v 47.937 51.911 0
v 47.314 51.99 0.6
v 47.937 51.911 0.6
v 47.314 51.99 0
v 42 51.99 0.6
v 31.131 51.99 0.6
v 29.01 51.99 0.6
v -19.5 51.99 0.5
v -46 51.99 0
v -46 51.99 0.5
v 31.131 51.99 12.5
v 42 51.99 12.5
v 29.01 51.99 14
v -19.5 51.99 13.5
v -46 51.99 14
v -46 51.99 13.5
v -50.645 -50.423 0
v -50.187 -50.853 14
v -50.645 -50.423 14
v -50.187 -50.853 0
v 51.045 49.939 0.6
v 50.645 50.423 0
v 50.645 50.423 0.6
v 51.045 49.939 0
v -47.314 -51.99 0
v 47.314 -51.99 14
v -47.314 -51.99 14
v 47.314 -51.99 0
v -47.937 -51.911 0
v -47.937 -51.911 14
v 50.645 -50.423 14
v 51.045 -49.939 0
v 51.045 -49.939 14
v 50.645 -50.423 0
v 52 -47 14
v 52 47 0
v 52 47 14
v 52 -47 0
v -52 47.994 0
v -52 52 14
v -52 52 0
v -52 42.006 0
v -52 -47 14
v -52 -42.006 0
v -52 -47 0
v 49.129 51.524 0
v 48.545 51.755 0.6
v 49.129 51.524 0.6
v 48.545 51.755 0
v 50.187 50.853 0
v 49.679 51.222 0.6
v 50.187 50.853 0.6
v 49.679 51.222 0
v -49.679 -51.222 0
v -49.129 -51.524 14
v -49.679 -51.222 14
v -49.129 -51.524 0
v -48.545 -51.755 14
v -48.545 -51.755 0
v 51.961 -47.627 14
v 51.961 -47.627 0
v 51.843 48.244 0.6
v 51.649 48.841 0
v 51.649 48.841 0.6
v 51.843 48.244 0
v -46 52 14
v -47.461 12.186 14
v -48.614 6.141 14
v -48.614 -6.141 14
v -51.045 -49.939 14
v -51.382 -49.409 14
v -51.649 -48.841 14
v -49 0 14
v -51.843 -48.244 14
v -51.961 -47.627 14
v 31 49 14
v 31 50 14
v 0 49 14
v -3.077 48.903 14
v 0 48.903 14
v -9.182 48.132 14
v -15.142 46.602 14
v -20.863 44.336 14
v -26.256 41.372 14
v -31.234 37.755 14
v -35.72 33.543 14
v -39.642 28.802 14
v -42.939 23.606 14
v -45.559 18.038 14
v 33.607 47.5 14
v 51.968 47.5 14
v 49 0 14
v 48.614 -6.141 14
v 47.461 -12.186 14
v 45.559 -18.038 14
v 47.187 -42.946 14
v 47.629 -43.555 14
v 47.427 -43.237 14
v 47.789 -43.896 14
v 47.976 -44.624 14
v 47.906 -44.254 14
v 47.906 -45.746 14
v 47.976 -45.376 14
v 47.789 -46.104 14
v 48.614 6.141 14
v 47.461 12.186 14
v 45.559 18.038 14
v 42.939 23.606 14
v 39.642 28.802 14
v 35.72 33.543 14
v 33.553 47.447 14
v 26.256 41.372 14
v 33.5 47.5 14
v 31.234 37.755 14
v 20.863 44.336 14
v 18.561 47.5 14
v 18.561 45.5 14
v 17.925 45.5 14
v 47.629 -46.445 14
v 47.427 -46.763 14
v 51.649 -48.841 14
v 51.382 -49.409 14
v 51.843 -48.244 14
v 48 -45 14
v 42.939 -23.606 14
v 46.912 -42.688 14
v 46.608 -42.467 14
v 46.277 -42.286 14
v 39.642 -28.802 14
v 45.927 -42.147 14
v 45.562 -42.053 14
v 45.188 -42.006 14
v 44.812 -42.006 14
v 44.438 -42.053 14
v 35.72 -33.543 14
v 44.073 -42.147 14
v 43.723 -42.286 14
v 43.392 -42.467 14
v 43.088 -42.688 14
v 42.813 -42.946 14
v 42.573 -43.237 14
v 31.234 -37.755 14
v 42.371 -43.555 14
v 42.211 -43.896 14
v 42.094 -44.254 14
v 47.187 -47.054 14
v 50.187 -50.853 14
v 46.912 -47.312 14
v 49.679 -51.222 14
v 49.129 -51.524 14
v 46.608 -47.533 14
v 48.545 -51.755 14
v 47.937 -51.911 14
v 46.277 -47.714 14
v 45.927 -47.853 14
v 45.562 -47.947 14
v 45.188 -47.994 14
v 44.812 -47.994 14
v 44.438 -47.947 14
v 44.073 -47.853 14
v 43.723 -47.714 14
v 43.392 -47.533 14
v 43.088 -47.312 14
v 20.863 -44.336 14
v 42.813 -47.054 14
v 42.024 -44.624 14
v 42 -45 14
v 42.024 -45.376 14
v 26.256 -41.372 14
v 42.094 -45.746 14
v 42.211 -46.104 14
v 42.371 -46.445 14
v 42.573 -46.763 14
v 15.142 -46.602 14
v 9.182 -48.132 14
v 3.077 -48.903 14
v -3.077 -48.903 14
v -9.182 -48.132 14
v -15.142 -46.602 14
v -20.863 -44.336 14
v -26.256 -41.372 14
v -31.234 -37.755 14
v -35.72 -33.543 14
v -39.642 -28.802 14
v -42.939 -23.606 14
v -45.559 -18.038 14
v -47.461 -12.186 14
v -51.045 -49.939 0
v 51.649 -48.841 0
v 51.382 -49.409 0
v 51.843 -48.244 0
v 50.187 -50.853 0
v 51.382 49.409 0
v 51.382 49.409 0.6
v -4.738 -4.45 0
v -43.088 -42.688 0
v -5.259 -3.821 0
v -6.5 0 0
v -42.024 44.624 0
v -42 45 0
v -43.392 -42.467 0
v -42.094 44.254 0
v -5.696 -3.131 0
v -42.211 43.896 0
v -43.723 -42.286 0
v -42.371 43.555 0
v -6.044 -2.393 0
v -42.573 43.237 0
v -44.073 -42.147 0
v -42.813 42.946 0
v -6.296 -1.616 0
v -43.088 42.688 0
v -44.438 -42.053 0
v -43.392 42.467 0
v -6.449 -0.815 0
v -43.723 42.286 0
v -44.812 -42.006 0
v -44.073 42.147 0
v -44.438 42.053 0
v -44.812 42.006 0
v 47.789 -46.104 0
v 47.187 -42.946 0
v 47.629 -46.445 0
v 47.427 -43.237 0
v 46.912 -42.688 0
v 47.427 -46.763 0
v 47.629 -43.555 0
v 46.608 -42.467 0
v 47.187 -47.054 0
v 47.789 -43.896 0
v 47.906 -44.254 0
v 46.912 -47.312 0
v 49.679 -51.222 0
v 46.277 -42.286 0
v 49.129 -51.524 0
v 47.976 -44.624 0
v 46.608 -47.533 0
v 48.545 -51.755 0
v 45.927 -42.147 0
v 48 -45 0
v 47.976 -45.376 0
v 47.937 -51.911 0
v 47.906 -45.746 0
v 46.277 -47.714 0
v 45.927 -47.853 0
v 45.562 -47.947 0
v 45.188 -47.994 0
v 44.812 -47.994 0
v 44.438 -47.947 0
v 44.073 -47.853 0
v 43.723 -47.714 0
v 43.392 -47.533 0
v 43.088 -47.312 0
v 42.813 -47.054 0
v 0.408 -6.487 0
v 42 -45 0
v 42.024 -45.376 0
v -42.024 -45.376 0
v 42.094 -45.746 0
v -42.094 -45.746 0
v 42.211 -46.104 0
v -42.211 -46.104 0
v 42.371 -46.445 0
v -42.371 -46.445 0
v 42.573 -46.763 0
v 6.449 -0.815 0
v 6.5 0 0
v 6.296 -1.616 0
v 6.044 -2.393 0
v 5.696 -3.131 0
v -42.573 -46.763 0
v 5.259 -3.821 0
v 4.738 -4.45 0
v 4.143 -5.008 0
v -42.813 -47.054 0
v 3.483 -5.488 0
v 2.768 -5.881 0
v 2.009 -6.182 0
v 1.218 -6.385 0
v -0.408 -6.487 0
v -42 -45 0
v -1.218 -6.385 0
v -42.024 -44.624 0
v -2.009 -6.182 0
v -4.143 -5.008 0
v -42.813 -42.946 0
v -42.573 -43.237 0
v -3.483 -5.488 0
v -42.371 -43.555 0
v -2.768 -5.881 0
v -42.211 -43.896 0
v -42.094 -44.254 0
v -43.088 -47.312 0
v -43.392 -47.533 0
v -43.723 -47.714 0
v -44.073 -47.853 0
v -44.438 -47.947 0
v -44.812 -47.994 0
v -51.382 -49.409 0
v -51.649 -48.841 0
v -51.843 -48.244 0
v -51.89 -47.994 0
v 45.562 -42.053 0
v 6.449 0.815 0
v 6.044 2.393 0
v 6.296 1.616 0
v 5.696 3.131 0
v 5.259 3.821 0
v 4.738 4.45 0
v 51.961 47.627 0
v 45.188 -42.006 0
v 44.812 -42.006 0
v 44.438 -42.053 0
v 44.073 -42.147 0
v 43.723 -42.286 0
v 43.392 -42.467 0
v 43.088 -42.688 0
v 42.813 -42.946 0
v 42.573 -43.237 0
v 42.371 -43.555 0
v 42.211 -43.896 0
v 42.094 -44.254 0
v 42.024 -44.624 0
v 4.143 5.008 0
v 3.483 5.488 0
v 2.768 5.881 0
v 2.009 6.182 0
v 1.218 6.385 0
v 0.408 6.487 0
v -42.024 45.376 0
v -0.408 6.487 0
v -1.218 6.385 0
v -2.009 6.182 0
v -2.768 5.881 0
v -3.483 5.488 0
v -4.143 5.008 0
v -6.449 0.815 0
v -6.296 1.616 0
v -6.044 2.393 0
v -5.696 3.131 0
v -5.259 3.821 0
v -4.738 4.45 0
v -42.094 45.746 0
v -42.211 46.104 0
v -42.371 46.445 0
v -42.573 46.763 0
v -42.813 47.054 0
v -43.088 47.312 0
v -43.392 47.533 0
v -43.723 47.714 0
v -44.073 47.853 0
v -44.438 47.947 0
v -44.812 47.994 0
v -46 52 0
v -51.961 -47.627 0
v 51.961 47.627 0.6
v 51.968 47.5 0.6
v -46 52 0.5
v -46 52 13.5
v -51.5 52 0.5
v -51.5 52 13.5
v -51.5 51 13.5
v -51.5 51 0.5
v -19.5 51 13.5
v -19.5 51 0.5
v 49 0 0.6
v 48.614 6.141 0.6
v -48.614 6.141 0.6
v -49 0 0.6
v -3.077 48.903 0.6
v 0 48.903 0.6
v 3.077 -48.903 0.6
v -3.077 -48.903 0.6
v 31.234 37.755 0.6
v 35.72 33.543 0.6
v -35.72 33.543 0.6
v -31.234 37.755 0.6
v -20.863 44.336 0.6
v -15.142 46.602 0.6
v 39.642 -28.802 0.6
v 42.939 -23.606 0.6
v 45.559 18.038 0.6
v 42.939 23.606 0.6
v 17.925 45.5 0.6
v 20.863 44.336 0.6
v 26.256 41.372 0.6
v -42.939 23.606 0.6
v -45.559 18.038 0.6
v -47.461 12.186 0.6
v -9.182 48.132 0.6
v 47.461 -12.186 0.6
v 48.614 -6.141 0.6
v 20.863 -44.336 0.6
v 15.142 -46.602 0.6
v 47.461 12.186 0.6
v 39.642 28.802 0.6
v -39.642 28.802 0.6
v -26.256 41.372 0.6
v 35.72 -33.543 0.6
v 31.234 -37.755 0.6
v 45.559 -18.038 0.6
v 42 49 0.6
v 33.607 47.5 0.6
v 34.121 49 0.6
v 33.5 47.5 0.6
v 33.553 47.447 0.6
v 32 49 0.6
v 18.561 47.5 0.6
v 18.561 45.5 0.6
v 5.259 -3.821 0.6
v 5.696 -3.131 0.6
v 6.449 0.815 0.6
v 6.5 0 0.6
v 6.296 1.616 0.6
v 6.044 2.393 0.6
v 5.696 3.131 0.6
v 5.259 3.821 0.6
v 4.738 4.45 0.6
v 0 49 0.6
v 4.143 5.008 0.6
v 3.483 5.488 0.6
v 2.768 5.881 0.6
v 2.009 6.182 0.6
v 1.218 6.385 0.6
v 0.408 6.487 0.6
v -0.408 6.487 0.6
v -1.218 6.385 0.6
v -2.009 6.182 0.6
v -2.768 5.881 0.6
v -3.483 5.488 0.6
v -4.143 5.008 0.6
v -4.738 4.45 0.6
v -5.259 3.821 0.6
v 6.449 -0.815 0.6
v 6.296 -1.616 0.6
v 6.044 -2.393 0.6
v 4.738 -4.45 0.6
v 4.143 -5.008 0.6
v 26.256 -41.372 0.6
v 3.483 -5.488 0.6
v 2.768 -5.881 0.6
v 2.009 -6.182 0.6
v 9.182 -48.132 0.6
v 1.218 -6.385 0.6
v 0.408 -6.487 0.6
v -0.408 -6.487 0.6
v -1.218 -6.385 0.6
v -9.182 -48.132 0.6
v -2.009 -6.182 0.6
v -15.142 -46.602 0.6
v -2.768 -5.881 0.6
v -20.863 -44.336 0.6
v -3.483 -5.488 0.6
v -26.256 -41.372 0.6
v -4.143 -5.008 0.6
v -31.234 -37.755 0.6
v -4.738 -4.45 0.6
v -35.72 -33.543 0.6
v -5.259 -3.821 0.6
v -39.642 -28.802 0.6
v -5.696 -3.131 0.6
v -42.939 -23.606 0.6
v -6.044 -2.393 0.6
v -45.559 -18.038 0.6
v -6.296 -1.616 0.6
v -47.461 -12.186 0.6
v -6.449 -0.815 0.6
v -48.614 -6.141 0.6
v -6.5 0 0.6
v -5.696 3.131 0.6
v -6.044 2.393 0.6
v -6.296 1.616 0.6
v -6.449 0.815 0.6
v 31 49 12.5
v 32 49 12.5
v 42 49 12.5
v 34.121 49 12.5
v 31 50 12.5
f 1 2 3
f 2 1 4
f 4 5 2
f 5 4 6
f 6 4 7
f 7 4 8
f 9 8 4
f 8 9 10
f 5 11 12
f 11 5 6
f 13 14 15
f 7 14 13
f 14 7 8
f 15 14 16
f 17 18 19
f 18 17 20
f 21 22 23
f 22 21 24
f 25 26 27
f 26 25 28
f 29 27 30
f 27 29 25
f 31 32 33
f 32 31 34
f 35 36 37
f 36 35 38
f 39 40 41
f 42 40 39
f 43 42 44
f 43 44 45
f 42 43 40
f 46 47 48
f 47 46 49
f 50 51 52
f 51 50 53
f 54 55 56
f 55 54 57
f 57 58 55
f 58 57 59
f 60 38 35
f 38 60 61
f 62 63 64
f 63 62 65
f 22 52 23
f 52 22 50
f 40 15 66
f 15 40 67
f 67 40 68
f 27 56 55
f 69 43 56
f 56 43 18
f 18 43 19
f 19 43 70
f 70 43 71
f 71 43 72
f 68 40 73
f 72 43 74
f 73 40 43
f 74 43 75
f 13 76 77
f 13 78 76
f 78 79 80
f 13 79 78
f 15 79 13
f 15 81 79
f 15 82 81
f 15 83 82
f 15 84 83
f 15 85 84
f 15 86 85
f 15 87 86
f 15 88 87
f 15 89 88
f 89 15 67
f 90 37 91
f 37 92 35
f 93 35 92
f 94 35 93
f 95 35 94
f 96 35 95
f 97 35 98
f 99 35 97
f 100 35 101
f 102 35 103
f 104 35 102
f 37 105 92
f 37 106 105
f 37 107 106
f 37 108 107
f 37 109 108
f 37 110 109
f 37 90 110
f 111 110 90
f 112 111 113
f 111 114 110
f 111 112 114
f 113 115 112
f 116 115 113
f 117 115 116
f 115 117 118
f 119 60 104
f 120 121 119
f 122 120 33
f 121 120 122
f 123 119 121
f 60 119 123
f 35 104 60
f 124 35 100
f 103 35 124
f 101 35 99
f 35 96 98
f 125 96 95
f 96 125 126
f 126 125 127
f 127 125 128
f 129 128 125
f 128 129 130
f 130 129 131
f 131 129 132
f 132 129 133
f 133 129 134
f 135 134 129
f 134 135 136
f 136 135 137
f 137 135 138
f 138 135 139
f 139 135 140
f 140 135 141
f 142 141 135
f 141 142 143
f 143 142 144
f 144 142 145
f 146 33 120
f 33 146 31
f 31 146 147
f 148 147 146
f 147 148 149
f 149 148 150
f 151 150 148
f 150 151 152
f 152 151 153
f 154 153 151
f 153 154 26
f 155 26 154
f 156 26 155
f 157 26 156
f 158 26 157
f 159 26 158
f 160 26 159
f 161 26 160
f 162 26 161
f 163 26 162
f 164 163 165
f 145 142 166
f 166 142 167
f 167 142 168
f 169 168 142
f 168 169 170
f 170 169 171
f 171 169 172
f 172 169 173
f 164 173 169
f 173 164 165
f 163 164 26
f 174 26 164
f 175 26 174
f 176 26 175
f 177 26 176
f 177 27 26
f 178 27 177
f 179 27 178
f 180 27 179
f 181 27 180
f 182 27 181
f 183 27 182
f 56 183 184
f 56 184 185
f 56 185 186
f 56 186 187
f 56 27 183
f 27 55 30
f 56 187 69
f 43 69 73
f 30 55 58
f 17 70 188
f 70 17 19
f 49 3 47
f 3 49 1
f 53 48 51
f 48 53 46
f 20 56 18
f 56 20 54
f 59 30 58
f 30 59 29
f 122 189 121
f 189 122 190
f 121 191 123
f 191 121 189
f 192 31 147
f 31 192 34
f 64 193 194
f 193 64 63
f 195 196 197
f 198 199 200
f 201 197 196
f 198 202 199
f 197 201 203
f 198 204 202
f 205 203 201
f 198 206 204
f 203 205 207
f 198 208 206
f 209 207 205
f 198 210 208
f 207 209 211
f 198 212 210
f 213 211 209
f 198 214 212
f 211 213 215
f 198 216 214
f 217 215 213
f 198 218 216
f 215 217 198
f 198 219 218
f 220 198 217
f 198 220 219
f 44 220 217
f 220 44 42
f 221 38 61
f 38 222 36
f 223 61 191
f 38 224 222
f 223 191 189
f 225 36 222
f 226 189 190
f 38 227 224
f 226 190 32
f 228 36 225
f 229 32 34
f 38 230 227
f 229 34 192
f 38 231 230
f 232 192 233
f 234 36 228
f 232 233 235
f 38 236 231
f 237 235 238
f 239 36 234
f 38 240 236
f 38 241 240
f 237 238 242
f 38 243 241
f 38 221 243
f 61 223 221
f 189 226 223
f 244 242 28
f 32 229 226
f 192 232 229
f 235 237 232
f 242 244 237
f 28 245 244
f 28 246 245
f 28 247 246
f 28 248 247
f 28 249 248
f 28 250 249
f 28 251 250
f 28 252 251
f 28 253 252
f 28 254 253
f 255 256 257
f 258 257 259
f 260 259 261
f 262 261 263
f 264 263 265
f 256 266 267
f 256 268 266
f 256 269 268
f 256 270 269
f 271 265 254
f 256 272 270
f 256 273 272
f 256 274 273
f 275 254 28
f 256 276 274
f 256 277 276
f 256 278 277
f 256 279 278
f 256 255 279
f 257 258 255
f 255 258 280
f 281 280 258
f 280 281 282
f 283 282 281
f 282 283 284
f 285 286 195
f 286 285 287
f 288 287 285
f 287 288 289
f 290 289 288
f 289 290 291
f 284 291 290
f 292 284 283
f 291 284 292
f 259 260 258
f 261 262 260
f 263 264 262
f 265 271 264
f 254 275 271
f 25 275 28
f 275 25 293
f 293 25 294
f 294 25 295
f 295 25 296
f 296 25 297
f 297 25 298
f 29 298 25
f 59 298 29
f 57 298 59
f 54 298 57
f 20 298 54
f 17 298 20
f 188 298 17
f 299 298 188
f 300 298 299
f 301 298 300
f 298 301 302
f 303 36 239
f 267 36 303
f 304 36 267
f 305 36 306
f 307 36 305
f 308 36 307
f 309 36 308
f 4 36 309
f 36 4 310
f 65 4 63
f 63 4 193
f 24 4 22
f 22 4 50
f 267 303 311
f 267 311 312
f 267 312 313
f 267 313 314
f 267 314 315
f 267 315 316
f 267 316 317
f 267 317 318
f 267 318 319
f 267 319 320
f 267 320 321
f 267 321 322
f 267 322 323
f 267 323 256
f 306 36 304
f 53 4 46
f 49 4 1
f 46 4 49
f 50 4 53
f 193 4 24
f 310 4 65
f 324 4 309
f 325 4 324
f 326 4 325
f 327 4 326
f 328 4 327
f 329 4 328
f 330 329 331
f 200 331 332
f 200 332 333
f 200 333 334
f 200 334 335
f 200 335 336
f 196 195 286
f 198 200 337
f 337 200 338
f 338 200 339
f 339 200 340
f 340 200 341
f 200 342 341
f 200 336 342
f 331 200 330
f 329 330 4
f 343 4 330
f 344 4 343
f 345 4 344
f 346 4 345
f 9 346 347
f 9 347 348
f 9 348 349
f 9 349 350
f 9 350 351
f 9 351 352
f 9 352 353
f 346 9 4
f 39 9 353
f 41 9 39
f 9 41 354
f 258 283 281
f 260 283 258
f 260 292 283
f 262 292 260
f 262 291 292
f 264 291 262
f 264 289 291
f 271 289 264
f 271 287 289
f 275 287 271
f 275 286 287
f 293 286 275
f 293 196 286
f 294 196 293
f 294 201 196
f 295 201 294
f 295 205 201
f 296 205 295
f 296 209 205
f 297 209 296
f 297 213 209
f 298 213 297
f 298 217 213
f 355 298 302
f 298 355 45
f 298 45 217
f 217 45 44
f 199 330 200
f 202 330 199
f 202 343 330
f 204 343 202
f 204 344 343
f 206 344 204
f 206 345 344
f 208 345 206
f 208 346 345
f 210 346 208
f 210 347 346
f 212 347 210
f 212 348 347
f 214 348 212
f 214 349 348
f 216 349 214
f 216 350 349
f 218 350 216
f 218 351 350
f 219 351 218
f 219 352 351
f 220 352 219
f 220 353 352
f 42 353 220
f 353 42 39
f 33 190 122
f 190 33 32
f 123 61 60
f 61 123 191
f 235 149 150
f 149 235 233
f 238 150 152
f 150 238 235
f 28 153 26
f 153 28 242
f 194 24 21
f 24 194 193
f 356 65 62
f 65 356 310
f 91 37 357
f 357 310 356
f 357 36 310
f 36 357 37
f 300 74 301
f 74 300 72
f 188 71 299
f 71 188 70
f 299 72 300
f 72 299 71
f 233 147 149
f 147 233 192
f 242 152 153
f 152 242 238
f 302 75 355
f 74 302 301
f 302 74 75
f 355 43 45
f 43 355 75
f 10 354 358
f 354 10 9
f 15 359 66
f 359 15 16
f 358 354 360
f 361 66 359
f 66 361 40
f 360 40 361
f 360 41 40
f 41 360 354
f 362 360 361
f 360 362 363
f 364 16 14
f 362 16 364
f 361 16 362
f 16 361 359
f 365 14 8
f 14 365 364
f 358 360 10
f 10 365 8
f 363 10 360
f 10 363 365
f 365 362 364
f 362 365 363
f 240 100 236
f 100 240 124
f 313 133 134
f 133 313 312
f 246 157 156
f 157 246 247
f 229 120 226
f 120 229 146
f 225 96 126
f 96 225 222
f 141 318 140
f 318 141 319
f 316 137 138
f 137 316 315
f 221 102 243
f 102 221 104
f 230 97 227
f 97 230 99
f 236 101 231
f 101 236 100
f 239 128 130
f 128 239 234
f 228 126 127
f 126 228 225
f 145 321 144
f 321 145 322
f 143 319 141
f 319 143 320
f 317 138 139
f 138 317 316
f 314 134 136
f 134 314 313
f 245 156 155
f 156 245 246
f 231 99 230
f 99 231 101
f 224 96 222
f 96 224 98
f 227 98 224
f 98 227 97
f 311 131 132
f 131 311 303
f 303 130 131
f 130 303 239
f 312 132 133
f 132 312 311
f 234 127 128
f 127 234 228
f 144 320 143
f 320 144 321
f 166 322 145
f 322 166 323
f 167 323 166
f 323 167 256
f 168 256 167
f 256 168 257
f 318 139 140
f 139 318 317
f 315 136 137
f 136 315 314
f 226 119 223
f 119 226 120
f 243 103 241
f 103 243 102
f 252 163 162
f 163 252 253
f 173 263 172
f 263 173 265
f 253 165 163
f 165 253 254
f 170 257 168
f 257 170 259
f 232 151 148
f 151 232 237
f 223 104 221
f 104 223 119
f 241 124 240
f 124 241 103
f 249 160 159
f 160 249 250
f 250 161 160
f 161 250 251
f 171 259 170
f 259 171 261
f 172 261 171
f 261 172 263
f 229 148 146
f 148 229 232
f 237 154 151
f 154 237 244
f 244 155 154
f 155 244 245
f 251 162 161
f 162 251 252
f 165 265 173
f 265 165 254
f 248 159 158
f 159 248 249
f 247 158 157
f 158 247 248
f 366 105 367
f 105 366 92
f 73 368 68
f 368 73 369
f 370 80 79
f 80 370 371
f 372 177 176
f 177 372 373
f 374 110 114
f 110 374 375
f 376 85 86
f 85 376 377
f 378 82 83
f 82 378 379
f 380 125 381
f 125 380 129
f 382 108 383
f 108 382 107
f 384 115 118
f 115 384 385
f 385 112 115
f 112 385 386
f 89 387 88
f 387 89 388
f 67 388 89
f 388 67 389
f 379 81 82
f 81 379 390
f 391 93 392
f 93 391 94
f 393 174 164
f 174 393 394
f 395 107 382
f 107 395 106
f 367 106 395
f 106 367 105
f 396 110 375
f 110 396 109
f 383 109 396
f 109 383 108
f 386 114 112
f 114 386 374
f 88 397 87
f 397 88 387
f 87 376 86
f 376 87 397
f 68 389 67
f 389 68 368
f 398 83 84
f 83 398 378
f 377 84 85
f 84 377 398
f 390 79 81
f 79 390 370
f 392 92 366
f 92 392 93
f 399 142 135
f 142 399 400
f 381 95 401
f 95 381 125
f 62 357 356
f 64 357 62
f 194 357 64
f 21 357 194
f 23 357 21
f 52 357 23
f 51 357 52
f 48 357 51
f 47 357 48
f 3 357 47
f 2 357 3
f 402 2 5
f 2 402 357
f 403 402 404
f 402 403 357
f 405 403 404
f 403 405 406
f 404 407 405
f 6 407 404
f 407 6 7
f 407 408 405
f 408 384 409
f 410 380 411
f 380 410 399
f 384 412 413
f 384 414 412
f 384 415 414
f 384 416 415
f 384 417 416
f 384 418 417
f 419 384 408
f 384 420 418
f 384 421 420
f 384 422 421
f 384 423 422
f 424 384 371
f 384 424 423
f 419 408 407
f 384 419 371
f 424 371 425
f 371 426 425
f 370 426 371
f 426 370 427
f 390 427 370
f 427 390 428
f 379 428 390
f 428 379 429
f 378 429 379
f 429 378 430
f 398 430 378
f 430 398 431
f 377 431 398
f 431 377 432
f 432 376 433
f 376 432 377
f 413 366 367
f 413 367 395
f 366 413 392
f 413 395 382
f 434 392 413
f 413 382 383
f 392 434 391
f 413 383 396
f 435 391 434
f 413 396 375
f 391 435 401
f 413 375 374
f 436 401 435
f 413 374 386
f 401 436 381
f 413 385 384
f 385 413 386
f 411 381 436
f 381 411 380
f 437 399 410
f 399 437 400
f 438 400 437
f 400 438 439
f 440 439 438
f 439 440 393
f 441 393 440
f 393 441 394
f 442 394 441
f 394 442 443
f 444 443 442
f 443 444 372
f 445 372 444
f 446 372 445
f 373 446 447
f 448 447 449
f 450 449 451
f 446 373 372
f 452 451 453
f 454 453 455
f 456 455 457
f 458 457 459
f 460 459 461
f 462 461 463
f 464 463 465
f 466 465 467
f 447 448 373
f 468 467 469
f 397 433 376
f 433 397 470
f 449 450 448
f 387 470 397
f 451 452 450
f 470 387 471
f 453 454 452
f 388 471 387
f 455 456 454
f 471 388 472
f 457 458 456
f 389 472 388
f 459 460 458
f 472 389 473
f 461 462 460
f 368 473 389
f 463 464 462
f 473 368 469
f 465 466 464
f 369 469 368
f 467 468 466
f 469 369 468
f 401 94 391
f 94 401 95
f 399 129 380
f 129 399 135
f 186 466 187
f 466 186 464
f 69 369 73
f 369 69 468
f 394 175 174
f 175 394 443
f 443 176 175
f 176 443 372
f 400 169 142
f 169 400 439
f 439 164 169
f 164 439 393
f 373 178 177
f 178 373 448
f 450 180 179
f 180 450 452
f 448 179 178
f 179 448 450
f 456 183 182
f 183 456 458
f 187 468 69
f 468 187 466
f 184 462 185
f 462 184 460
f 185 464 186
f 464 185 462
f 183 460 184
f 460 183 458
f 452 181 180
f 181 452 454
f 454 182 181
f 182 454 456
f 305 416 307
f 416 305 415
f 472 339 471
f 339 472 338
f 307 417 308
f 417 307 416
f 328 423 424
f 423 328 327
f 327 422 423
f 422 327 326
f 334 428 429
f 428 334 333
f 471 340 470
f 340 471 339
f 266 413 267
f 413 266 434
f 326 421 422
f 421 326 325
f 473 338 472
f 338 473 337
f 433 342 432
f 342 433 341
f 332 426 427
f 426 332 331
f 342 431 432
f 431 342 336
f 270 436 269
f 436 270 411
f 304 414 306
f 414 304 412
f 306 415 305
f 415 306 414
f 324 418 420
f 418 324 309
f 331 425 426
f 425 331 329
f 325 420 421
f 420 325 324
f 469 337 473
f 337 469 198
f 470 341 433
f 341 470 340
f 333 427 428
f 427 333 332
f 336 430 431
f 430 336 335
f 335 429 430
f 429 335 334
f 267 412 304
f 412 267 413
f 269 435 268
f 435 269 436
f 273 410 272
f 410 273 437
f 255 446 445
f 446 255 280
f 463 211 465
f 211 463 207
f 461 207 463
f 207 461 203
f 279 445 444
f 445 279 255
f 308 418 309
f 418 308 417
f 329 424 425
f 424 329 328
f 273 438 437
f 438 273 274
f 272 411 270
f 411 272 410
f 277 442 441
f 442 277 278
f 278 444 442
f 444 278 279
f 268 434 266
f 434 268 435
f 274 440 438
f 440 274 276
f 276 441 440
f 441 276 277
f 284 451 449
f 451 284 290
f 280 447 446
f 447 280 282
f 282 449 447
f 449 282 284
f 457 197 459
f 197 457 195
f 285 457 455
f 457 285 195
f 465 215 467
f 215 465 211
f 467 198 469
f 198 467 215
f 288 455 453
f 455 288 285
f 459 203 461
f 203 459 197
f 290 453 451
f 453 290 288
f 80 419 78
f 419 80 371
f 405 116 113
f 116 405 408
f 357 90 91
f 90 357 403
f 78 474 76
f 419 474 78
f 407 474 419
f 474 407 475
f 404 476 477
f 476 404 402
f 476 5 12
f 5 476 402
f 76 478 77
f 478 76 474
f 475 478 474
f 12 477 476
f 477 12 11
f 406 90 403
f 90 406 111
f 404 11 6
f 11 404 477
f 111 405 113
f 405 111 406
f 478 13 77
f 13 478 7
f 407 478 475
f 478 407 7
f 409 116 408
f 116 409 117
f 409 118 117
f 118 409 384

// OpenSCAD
$fn = 50;


difference() {
	union() {
		hull() {
			translate(v = [-47.0000000000, 47.0000000000, 0]) {
				cylinder(h = 14, r = 5);
			}
			translate(v = [47.0000000000, 47.0000000000, 0]) {
				cylinder(h = 14, r = 5);
			}
			translate(v = [-47.0000000000, -47.0000000000, 0]) {
				cylinder(h = 14, r = 5);
			}
			translate(v = [47.0000000000, -47.0000000000, 0]) {
				cylinder(h = 14, r = 5);
			}
		}
		translate(v = [-52.0000000000, 46.0000000000, 0]) {
			cube(size = [6, 6, 14]);
		}
	}
	union() {
		translate(v = [-52.5000000000, -45.0000000000, -250.0000000000]) {
			rotate(a = [0, 0, 0]) {
				difference() {
					union() {
						hull() {
							translate(v = [7.5000000000, 0, 0]) {
								cylinder(h = 250, r = 3.0000000000, r1 = 3.0000000000, r2 = 3.0000000000);
							}
							translate(v = [-7.5000000000, 0, 0]) {
								cylinder(h = 250, r = 3.0000000000, r1 = 3.0000000000, r2 = 3.0000000000);
							}
						}
					}
					union();
				}
			}
		}
		translate(v = [-52.5000000000, 45.0000000000, -250.0000000000]) {
			rotate(a = [0, 0, 0]) {
				difference() {
					union() {
						hull() {
							translate(v = [7.5000000000, 0, 0]) {
								cylinder(h = 250, r = 3.0000000000, r1 = 3.0000000000, r2 = 3.0000000000);
							}
							translate(v = [-7.5000000000, 0, 0]) {
								cylinder(h = 250, r = 3.0000000000, r1 = 3.0000000000, r2 = 3.0000000000);
							}
						}
					}
					union();
				}
			}
		}
		translate(v = [-51.5000000000, 51.0000000000, 0.5000000000]) {
			cube(size = [32, 1, 13.0000000000]);
		}
		translate(v = [45.0000000000, -45.0000000000, -50.0000000000]) {
			cylinder(h = 100, r = 3.0000000000);
		}
		translate(v = [0, 0, 0.6000000000]) {
			cylinder(h = 16.4000000000, r = 49.0000000000);
		}
		translate(v = [0, 0, -7.0000000000]) {
			cylinder(h = 14, r = 6.5000000000);
		}
		translate(v = [0.0000000000, 47.5000000000, 0.6000000000]) {
			cube(size = [52.0000000000, 1.5000000000, 16.4000000000]);
		}
		translate(v = [42.0000000000, 47.5000000000, 0.6000000000]) {
			cube(size = [10, 4.5000000000, 16.4000000000]);
		}
		translate(v = [31.0000000000, 47.5000000000, 12.5000000000]) {
			cube(size = [21, 4.5000000000, 1.5000000000]);
		}
		translate(v = [28.2500000000, 52.7500000000, 0.6000000000]) {
			rotate(a = [0, 0, -45]) {
				cube(size = [7.5000000000, 1.5000000000, 16.4000000000]);
			}
		}
		translate(v = [11.0610000000, 45.5000000000, 0.6000000000]) {
			cube(size = [7.5000000000, 2, 13.4000000000]);
		}
	}
}
